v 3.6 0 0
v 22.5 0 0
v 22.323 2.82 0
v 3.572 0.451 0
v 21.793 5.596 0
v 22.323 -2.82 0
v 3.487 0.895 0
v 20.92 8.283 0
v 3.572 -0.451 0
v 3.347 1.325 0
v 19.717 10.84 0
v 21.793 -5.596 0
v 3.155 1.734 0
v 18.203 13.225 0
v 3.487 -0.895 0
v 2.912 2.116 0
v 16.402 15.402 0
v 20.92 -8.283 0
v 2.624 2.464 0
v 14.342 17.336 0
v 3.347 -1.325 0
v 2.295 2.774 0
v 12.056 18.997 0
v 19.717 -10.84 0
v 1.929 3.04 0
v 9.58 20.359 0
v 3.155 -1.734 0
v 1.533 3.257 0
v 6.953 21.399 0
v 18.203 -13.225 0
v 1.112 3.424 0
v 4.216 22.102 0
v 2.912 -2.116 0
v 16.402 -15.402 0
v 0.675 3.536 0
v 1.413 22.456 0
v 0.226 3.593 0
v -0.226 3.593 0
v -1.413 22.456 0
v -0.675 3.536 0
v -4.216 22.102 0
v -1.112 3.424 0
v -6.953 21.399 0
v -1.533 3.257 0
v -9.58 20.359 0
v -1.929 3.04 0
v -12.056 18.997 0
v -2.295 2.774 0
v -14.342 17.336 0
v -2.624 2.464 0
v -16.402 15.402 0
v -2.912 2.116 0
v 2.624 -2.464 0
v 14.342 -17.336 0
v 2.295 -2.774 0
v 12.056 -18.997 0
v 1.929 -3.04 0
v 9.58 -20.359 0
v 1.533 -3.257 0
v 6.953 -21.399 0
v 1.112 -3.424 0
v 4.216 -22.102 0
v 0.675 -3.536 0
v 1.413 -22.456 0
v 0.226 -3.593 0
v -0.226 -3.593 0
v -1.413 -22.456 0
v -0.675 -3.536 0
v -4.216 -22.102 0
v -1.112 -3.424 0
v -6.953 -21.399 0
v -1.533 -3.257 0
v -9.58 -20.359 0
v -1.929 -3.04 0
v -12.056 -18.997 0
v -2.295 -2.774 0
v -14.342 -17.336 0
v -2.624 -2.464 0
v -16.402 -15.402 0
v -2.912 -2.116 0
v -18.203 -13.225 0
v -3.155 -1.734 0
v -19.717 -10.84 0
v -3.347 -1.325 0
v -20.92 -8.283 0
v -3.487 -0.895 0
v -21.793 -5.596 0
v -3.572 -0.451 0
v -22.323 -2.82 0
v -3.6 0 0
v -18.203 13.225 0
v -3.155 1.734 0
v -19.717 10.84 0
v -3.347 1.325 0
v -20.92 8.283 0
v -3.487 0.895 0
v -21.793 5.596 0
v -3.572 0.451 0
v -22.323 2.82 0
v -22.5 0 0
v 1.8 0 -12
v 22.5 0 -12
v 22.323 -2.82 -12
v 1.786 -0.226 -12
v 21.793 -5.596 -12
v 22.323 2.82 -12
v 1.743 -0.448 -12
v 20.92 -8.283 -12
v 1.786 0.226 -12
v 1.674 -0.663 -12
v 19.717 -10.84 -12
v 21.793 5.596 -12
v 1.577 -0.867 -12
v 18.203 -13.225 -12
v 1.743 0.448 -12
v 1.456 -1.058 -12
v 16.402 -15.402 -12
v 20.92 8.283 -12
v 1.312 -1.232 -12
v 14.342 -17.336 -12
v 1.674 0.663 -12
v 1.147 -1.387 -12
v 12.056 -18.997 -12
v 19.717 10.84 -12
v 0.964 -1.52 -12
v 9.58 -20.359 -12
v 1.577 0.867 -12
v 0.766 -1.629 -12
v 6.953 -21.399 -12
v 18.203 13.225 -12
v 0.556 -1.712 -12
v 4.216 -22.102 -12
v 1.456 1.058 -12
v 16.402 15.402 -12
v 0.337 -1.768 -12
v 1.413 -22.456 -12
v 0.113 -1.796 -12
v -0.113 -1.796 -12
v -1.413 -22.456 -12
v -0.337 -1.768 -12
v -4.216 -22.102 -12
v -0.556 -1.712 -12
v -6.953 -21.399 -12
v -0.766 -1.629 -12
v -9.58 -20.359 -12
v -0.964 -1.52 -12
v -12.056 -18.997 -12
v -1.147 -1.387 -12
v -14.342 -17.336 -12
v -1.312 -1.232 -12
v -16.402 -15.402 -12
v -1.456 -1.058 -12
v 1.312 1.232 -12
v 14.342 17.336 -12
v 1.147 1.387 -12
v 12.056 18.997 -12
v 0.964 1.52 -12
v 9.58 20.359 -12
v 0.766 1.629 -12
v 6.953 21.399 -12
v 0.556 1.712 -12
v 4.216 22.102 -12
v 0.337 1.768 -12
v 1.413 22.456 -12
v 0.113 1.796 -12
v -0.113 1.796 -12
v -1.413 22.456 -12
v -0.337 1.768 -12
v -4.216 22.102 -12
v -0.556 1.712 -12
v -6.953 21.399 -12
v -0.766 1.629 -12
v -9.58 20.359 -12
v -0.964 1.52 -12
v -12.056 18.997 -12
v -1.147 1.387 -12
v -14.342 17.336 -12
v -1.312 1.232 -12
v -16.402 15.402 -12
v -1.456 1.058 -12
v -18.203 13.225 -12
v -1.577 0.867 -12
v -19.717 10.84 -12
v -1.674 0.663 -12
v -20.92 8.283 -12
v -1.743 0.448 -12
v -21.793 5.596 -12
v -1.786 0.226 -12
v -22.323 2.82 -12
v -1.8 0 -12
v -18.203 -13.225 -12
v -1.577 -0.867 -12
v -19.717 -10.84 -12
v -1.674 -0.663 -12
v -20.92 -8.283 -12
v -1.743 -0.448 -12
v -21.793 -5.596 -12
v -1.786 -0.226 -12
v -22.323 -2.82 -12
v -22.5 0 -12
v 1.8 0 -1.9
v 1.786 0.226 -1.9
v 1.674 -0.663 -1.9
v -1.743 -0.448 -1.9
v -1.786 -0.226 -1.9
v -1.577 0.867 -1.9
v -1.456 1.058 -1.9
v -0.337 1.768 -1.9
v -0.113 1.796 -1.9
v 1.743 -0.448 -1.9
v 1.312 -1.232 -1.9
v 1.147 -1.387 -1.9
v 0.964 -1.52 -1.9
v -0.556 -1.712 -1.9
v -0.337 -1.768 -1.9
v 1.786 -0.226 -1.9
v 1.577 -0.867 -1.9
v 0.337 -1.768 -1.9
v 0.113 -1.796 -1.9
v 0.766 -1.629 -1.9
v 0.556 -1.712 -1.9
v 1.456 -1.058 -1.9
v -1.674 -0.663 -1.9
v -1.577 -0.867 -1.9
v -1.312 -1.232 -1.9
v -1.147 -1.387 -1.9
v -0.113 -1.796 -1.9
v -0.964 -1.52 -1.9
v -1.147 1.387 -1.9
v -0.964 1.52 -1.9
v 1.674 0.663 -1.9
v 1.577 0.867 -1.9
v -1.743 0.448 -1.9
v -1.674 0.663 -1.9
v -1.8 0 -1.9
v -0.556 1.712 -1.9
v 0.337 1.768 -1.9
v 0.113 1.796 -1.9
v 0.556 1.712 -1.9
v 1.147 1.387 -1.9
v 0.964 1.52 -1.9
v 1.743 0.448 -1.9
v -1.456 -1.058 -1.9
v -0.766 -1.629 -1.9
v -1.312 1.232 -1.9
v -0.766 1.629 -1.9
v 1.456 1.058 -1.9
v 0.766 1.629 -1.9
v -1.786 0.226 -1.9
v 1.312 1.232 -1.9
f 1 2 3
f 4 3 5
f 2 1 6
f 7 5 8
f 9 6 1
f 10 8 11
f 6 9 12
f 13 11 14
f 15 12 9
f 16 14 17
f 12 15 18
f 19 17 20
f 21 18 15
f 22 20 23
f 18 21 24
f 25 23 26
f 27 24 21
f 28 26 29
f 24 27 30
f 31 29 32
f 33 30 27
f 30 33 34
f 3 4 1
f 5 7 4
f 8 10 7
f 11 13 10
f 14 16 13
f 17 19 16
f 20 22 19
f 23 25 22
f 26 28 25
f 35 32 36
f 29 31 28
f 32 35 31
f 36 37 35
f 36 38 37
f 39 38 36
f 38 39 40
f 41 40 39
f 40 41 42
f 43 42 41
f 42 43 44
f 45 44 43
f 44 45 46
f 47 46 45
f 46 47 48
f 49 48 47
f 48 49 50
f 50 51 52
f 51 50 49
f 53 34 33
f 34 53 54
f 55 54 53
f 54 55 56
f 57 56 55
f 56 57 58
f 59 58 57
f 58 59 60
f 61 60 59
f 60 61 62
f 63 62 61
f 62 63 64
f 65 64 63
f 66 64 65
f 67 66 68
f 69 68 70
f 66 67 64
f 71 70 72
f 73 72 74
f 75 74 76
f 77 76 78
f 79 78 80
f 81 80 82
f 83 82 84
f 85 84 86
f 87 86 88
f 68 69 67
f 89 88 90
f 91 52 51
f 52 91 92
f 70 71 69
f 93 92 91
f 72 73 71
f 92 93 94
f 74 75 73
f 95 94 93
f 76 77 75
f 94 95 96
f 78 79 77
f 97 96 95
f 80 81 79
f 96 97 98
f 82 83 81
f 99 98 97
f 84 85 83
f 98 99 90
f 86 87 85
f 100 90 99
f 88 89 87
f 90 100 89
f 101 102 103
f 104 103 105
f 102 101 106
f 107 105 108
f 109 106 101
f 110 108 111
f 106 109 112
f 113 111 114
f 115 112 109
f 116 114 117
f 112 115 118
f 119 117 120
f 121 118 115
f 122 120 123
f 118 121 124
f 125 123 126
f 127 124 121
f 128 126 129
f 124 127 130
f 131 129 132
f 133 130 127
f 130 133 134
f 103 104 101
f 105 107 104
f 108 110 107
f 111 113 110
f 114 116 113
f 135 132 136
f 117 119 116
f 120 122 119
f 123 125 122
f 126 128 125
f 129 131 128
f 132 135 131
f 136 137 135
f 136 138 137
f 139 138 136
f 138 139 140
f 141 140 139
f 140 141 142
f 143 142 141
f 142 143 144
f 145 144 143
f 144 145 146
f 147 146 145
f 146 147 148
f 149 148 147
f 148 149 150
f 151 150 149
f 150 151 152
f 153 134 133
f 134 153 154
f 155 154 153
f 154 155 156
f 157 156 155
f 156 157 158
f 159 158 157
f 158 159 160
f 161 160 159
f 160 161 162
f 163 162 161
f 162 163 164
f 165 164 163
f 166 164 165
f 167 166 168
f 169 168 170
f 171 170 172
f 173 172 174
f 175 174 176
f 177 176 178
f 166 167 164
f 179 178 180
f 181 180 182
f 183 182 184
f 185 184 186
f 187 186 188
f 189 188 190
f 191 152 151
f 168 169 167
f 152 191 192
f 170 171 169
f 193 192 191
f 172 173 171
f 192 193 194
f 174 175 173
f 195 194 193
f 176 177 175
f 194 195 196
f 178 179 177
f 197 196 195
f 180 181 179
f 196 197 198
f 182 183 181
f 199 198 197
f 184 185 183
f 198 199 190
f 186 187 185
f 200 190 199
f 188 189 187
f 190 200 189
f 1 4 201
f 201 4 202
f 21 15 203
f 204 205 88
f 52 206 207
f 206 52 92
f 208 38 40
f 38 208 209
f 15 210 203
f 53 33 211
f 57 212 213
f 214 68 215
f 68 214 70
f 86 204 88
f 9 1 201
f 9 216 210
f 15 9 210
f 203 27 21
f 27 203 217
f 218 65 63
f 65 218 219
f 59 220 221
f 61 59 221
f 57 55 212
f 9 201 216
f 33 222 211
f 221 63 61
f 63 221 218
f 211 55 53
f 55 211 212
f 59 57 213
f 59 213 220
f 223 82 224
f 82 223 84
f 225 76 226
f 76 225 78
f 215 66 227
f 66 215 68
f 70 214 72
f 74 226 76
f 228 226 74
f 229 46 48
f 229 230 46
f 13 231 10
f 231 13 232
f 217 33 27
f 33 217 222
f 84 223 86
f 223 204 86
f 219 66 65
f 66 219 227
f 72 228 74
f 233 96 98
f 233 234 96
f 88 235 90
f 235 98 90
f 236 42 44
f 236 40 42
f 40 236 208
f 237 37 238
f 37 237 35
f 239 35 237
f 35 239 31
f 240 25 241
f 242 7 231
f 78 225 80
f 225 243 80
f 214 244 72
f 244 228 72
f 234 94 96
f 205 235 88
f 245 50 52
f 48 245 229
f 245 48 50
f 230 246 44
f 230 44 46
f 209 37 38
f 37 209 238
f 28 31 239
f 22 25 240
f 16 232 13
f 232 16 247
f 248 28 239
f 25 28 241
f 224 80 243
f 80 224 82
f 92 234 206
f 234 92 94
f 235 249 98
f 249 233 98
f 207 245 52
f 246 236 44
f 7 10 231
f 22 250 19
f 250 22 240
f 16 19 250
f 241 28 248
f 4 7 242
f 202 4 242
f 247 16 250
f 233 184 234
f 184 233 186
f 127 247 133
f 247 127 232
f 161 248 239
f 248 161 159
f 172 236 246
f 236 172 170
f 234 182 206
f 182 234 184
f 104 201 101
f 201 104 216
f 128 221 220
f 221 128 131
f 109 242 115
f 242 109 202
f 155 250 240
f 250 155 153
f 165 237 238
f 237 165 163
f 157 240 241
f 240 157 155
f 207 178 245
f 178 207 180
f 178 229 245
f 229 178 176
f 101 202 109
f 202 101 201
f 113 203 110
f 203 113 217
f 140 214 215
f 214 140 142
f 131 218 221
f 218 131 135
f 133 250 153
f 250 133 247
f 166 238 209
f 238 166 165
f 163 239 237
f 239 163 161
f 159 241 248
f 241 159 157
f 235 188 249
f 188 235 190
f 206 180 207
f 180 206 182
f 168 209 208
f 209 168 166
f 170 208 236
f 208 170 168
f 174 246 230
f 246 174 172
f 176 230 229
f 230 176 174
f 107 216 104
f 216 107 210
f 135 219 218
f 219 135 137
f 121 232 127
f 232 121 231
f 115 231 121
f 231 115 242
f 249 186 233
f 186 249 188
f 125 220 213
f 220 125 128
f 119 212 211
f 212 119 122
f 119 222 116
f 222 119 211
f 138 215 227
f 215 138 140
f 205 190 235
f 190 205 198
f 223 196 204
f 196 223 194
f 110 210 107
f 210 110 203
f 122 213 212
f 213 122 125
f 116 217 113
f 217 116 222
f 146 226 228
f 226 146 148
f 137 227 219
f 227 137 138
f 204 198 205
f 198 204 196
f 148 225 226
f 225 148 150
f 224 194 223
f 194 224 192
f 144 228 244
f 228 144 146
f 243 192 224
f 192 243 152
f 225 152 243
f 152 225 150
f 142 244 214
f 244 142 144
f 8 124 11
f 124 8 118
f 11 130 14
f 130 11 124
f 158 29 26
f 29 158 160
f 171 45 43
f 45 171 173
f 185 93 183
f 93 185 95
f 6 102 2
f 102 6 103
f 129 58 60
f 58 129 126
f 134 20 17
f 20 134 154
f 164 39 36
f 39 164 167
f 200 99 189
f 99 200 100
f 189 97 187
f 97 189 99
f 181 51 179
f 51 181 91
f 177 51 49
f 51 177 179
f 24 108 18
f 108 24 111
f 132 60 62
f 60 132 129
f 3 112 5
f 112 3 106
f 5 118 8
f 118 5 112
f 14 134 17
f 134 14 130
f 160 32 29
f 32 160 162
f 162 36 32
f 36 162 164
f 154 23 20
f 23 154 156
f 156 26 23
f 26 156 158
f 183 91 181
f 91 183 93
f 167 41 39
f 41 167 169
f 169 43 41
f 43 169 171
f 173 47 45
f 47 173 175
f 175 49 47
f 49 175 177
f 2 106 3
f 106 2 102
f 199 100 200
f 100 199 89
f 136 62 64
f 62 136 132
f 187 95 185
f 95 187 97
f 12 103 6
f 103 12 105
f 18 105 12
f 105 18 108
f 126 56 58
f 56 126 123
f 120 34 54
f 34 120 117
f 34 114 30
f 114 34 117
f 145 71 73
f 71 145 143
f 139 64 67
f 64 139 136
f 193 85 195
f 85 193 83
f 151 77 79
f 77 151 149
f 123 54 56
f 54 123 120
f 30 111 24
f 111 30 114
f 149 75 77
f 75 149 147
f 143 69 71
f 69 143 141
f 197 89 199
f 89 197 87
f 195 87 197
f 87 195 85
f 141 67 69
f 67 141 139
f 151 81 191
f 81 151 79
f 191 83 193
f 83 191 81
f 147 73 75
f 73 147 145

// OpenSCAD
$fn = 50;


difference() {
	union() {
		translate(v = [0, 0, -12.0000000000]) {
			cylinder(h = 12, r = 22.5000000000);
		}
	}
	union() {
		translate(v = [0, 0, 0]) {
			rotate(a = [0, 0, 0]) {
				difference() {
					union() {
						translate(v = [0, 0, -12.0000000000]) {
							cylinder(h = 12, r = 1.5000000000);
						}
						translate(v = [0, 0, -1.9000000000]) {
							cylinder(h = 1.9000000000, r1 = 1.8000000000, r2 = 3.6000000000);
						}
						translate(v = [0, 0, -12.0000000000]) {
							cylinder(h = 12, r = 1.8000000000);
						}
						translate(v = [0, 0, -12.0000000000]) {
							cylinder(h = 12, r = 1.5000000000);
						}
					}
					union();
				}
			}
		}
	}
}
